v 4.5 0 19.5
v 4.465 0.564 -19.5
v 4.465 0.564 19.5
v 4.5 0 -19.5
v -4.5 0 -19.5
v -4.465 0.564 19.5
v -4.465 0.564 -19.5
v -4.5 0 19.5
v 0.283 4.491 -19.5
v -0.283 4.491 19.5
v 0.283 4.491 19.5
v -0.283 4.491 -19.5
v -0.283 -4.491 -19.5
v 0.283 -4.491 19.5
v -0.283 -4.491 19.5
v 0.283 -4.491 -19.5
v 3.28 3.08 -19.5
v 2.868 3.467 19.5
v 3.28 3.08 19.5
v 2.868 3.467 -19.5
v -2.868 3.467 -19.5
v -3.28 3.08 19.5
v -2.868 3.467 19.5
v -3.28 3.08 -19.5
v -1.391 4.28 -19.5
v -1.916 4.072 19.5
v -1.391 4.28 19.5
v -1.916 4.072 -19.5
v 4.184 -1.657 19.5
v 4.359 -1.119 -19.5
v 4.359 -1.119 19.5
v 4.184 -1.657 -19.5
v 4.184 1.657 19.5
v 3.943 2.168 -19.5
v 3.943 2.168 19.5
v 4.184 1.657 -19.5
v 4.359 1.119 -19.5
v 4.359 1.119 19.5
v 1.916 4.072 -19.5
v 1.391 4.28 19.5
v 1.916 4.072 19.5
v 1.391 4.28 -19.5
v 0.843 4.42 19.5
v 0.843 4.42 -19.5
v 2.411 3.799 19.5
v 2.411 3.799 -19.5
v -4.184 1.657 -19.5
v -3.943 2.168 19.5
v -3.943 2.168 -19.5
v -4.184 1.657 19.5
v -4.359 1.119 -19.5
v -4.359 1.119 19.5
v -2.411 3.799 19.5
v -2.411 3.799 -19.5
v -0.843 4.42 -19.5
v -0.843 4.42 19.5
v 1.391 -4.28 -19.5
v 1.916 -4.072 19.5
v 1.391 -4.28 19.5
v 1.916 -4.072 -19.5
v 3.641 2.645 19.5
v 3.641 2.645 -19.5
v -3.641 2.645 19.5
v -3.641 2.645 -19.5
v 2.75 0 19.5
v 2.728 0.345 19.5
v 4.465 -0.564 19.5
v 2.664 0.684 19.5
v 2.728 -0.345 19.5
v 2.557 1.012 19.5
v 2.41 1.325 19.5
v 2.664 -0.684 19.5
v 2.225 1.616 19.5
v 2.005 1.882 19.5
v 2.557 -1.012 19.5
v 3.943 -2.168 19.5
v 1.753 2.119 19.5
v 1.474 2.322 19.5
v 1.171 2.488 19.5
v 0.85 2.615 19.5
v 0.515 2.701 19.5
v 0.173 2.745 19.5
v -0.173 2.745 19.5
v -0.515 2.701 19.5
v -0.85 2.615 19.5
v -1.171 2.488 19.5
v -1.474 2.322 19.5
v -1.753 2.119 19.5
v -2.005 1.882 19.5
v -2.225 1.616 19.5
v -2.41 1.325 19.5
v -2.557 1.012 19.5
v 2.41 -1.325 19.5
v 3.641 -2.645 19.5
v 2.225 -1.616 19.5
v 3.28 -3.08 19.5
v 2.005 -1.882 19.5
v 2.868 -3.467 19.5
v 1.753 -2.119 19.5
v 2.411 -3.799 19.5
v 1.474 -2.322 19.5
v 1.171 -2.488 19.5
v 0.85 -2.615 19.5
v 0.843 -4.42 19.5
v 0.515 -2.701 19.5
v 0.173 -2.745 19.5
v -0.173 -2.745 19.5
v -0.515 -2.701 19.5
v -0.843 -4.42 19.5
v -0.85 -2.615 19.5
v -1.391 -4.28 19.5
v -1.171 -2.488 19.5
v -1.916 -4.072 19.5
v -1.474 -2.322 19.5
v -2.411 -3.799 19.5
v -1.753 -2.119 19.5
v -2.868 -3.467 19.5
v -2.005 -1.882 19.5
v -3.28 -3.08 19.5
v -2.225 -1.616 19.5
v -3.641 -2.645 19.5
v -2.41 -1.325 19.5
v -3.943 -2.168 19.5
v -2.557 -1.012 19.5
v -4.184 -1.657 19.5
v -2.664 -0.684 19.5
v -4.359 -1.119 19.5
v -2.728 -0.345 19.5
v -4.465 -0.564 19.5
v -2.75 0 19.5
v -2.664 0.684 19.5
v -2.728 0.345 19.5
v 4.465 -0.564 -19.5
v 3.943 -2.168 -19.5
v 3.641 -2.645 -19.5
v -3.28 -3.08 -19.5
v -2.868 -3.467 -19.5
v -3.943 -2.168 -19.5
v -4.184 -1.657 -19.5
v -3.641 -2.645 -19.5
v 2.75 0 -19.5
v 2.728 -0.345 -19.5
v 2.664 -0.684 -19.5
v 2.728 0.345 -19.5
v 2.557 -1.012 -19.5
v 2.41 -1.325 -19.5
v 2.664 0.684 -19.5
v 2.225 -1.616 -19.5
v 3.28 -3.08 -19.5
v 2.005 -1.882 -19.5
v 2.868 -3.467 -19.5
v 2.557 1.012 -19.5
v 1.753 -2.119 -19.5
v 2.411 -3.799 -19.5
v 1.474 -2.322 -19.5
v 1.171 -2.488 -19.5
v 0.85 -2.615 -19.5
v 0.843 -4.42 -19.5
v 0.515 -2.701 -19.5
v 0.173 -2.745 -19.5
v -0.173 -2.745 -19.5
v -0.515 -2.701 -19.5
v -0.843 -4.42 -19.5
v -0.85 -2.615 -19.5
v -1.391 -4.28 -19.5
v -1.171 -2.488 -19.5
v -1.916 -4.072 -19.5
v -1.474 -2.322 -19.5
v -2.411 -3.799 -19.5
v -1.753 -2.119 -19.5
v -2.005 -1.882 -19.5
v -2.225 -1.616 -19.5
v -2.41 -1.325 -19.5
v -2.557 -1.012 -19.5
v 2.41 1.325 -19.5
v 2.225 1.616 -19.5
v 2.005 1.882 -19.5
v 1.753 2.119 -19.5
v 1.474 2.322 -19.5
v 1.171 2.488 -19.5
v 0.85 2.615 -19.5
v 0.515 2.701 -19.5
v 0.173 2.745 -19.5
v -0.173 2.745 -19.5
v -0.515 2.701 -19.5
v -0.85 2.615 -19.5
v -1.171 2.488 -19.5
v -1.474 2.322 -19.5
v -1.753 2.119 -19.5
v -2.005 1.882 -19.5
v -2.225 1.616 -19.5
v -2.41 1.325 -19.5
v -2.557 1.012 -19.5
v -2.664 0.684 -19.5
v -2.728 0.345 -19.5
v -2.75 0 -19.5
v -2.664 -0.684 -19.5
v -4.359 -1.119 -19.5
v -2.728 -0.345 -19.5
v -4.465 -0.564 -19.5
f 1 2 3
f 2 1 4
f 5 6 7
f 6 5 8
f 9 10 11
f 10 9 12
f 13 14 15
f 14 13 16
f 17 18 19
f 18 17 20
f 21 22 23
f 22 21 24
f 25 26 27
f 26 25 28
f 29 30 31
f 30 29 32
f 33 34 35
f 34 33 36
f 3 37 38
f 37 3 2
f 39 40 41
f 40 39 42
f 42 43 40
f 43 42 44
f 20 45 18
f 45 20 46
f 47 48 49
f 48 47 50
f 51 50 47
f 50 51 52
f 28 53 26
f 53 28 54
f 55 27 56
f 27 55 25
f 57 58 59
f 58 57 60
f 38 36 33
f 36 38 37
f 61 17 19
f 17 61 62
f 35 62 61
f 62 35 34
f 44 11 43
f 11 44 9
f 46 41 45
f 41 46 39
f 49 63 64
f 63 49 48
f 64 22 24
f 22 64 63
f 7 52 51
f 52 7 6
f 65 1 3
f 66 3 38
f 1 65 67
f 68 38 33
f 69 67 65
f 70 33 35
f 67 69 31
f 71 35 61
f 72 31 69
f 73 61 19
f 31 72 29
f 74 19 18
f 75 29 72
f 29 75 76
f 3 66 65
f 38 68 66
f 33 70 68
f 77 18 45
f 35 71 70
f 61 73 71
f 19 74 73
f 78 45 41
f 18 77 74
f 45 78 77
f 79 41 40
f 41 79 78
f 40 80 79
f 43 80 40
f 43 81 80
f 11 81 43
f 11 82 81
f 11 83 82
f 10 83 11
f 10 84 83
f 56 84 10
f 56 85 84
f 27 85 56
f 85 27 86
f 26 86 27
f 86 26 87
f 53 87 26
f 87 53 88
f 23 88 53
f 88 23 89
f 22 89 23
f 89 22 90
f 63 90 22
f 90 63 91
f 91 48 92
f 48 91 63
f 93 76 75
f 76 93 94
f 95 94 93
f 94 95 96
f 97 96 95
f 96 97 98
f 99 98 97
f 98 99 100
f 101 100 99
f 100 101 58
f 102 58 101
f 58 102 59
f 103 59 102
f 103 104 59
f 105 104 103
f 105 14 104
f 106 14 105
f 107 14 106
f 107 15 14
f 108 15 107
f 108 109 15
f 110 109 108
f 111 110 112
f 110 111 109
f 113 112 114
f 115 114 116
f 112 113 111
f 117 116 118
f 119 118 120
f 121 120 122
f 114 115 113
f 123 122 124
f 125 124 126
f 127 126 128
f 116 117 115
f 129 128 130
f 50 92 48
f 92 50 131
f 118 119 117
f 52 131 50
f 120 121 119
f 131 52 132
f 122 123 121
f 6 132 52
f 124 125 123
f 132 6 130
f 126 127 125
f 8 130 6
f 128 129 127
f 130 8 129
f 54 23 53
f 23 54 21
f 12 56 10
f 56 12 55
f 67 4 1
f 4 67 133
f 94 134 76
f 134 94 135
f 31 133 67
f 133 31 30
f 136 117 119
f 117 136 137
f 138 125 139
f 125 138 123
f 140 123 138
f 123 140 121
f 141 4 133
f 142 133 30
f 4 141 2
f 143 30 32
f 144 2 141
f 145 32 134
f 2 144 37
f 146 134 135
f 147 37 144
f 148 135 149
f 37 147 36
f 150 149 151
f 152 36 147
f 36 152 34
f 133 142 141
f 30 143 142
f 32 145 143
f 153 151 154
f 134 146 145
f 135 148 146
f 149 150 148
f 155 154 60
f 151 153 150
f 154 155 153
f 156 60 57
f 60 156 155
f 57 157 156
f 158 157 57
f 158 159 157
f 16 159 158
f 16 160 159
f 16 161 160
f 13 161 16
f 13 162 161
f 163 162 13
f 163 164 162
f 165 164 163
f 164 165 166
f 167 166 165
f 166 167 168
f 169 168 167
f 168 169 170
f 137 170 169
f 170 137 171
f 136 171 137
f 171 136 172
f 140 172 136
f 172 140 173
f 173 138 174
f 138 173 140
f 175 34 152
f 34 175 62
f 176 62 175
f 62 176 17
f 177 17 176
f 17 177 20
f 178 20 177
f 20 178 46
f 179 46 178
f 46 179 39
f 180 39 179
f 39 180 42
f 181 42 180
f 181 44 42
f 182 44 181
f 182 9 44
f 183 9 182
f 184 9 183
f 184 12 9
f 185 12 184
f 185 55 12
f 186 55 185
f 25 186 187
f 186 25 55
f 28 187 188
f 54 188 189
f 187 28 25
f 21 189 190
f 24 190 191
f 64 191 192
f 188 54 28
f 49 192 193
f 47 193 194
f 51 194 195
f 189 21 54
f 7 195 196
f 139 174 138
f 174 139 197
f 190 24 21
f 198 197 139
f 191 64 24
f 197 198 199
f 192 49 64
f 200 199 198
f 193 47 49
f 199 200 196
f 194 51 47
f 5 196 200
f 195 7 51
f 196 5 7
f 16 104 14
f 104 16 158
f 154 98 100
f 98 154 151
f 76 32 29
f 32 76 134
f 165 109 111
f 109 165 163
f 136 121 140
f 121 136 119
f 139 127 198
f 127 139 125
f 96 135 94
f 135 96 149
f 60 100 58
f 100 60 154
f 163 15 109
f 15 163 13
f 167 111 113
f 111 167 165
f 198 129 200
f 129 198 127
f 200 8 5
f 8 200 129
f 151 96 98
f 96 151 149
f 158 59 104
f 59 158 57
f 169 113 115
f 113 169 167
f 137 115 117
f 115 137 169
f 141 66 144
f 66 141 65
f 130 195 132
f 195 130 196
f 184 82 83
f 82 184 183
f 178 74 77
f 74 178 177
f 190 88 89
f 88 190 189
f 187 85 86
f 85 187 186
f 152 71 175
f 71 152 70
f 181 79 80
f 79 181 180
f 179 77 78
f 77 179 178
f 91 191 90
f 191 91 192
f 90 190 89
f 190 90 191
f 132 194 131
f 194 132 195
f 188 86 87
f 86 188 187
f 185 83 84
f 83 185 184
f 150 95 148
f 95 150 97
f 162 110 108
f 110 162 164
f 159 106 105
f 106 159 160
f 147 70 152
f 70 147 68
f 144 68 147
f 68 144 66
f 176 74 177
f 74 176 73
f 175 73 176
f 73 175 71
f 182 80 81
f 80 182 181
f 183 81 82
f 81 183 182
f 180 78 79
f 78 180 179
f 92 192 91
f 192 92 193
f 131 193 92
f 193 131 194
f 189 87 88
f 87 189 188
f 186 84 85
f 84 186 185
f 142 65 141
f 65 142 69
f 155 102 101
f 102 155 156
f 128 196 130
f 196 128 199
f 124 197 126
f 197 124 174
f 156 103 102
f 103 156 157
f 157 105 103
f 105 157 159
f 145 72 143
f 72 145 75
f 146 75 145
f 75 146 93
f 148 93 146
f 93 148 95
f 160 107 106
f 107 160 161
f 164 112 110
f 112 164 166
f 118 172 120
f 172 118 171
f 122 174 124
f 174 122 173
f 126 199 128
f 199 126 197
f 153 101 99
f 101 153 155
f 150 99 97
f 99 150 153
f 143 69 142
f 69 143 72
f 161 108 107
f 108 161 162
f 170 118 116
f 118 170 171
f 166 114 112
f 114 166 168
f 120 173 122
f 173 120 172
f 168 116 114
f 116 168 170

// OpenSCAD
$fn = 50;


difference() {
	union() {
		translate(v = [0, 0, -19.5000000000]) {
			cylinder(h = 39, r = 4.5000000000);
		}
	}
	union() {
		translate(v = [0, 0, -100.0000000000]) {
			cylinder(h = 200, r = 2.7500000000);
		}
	}
}
